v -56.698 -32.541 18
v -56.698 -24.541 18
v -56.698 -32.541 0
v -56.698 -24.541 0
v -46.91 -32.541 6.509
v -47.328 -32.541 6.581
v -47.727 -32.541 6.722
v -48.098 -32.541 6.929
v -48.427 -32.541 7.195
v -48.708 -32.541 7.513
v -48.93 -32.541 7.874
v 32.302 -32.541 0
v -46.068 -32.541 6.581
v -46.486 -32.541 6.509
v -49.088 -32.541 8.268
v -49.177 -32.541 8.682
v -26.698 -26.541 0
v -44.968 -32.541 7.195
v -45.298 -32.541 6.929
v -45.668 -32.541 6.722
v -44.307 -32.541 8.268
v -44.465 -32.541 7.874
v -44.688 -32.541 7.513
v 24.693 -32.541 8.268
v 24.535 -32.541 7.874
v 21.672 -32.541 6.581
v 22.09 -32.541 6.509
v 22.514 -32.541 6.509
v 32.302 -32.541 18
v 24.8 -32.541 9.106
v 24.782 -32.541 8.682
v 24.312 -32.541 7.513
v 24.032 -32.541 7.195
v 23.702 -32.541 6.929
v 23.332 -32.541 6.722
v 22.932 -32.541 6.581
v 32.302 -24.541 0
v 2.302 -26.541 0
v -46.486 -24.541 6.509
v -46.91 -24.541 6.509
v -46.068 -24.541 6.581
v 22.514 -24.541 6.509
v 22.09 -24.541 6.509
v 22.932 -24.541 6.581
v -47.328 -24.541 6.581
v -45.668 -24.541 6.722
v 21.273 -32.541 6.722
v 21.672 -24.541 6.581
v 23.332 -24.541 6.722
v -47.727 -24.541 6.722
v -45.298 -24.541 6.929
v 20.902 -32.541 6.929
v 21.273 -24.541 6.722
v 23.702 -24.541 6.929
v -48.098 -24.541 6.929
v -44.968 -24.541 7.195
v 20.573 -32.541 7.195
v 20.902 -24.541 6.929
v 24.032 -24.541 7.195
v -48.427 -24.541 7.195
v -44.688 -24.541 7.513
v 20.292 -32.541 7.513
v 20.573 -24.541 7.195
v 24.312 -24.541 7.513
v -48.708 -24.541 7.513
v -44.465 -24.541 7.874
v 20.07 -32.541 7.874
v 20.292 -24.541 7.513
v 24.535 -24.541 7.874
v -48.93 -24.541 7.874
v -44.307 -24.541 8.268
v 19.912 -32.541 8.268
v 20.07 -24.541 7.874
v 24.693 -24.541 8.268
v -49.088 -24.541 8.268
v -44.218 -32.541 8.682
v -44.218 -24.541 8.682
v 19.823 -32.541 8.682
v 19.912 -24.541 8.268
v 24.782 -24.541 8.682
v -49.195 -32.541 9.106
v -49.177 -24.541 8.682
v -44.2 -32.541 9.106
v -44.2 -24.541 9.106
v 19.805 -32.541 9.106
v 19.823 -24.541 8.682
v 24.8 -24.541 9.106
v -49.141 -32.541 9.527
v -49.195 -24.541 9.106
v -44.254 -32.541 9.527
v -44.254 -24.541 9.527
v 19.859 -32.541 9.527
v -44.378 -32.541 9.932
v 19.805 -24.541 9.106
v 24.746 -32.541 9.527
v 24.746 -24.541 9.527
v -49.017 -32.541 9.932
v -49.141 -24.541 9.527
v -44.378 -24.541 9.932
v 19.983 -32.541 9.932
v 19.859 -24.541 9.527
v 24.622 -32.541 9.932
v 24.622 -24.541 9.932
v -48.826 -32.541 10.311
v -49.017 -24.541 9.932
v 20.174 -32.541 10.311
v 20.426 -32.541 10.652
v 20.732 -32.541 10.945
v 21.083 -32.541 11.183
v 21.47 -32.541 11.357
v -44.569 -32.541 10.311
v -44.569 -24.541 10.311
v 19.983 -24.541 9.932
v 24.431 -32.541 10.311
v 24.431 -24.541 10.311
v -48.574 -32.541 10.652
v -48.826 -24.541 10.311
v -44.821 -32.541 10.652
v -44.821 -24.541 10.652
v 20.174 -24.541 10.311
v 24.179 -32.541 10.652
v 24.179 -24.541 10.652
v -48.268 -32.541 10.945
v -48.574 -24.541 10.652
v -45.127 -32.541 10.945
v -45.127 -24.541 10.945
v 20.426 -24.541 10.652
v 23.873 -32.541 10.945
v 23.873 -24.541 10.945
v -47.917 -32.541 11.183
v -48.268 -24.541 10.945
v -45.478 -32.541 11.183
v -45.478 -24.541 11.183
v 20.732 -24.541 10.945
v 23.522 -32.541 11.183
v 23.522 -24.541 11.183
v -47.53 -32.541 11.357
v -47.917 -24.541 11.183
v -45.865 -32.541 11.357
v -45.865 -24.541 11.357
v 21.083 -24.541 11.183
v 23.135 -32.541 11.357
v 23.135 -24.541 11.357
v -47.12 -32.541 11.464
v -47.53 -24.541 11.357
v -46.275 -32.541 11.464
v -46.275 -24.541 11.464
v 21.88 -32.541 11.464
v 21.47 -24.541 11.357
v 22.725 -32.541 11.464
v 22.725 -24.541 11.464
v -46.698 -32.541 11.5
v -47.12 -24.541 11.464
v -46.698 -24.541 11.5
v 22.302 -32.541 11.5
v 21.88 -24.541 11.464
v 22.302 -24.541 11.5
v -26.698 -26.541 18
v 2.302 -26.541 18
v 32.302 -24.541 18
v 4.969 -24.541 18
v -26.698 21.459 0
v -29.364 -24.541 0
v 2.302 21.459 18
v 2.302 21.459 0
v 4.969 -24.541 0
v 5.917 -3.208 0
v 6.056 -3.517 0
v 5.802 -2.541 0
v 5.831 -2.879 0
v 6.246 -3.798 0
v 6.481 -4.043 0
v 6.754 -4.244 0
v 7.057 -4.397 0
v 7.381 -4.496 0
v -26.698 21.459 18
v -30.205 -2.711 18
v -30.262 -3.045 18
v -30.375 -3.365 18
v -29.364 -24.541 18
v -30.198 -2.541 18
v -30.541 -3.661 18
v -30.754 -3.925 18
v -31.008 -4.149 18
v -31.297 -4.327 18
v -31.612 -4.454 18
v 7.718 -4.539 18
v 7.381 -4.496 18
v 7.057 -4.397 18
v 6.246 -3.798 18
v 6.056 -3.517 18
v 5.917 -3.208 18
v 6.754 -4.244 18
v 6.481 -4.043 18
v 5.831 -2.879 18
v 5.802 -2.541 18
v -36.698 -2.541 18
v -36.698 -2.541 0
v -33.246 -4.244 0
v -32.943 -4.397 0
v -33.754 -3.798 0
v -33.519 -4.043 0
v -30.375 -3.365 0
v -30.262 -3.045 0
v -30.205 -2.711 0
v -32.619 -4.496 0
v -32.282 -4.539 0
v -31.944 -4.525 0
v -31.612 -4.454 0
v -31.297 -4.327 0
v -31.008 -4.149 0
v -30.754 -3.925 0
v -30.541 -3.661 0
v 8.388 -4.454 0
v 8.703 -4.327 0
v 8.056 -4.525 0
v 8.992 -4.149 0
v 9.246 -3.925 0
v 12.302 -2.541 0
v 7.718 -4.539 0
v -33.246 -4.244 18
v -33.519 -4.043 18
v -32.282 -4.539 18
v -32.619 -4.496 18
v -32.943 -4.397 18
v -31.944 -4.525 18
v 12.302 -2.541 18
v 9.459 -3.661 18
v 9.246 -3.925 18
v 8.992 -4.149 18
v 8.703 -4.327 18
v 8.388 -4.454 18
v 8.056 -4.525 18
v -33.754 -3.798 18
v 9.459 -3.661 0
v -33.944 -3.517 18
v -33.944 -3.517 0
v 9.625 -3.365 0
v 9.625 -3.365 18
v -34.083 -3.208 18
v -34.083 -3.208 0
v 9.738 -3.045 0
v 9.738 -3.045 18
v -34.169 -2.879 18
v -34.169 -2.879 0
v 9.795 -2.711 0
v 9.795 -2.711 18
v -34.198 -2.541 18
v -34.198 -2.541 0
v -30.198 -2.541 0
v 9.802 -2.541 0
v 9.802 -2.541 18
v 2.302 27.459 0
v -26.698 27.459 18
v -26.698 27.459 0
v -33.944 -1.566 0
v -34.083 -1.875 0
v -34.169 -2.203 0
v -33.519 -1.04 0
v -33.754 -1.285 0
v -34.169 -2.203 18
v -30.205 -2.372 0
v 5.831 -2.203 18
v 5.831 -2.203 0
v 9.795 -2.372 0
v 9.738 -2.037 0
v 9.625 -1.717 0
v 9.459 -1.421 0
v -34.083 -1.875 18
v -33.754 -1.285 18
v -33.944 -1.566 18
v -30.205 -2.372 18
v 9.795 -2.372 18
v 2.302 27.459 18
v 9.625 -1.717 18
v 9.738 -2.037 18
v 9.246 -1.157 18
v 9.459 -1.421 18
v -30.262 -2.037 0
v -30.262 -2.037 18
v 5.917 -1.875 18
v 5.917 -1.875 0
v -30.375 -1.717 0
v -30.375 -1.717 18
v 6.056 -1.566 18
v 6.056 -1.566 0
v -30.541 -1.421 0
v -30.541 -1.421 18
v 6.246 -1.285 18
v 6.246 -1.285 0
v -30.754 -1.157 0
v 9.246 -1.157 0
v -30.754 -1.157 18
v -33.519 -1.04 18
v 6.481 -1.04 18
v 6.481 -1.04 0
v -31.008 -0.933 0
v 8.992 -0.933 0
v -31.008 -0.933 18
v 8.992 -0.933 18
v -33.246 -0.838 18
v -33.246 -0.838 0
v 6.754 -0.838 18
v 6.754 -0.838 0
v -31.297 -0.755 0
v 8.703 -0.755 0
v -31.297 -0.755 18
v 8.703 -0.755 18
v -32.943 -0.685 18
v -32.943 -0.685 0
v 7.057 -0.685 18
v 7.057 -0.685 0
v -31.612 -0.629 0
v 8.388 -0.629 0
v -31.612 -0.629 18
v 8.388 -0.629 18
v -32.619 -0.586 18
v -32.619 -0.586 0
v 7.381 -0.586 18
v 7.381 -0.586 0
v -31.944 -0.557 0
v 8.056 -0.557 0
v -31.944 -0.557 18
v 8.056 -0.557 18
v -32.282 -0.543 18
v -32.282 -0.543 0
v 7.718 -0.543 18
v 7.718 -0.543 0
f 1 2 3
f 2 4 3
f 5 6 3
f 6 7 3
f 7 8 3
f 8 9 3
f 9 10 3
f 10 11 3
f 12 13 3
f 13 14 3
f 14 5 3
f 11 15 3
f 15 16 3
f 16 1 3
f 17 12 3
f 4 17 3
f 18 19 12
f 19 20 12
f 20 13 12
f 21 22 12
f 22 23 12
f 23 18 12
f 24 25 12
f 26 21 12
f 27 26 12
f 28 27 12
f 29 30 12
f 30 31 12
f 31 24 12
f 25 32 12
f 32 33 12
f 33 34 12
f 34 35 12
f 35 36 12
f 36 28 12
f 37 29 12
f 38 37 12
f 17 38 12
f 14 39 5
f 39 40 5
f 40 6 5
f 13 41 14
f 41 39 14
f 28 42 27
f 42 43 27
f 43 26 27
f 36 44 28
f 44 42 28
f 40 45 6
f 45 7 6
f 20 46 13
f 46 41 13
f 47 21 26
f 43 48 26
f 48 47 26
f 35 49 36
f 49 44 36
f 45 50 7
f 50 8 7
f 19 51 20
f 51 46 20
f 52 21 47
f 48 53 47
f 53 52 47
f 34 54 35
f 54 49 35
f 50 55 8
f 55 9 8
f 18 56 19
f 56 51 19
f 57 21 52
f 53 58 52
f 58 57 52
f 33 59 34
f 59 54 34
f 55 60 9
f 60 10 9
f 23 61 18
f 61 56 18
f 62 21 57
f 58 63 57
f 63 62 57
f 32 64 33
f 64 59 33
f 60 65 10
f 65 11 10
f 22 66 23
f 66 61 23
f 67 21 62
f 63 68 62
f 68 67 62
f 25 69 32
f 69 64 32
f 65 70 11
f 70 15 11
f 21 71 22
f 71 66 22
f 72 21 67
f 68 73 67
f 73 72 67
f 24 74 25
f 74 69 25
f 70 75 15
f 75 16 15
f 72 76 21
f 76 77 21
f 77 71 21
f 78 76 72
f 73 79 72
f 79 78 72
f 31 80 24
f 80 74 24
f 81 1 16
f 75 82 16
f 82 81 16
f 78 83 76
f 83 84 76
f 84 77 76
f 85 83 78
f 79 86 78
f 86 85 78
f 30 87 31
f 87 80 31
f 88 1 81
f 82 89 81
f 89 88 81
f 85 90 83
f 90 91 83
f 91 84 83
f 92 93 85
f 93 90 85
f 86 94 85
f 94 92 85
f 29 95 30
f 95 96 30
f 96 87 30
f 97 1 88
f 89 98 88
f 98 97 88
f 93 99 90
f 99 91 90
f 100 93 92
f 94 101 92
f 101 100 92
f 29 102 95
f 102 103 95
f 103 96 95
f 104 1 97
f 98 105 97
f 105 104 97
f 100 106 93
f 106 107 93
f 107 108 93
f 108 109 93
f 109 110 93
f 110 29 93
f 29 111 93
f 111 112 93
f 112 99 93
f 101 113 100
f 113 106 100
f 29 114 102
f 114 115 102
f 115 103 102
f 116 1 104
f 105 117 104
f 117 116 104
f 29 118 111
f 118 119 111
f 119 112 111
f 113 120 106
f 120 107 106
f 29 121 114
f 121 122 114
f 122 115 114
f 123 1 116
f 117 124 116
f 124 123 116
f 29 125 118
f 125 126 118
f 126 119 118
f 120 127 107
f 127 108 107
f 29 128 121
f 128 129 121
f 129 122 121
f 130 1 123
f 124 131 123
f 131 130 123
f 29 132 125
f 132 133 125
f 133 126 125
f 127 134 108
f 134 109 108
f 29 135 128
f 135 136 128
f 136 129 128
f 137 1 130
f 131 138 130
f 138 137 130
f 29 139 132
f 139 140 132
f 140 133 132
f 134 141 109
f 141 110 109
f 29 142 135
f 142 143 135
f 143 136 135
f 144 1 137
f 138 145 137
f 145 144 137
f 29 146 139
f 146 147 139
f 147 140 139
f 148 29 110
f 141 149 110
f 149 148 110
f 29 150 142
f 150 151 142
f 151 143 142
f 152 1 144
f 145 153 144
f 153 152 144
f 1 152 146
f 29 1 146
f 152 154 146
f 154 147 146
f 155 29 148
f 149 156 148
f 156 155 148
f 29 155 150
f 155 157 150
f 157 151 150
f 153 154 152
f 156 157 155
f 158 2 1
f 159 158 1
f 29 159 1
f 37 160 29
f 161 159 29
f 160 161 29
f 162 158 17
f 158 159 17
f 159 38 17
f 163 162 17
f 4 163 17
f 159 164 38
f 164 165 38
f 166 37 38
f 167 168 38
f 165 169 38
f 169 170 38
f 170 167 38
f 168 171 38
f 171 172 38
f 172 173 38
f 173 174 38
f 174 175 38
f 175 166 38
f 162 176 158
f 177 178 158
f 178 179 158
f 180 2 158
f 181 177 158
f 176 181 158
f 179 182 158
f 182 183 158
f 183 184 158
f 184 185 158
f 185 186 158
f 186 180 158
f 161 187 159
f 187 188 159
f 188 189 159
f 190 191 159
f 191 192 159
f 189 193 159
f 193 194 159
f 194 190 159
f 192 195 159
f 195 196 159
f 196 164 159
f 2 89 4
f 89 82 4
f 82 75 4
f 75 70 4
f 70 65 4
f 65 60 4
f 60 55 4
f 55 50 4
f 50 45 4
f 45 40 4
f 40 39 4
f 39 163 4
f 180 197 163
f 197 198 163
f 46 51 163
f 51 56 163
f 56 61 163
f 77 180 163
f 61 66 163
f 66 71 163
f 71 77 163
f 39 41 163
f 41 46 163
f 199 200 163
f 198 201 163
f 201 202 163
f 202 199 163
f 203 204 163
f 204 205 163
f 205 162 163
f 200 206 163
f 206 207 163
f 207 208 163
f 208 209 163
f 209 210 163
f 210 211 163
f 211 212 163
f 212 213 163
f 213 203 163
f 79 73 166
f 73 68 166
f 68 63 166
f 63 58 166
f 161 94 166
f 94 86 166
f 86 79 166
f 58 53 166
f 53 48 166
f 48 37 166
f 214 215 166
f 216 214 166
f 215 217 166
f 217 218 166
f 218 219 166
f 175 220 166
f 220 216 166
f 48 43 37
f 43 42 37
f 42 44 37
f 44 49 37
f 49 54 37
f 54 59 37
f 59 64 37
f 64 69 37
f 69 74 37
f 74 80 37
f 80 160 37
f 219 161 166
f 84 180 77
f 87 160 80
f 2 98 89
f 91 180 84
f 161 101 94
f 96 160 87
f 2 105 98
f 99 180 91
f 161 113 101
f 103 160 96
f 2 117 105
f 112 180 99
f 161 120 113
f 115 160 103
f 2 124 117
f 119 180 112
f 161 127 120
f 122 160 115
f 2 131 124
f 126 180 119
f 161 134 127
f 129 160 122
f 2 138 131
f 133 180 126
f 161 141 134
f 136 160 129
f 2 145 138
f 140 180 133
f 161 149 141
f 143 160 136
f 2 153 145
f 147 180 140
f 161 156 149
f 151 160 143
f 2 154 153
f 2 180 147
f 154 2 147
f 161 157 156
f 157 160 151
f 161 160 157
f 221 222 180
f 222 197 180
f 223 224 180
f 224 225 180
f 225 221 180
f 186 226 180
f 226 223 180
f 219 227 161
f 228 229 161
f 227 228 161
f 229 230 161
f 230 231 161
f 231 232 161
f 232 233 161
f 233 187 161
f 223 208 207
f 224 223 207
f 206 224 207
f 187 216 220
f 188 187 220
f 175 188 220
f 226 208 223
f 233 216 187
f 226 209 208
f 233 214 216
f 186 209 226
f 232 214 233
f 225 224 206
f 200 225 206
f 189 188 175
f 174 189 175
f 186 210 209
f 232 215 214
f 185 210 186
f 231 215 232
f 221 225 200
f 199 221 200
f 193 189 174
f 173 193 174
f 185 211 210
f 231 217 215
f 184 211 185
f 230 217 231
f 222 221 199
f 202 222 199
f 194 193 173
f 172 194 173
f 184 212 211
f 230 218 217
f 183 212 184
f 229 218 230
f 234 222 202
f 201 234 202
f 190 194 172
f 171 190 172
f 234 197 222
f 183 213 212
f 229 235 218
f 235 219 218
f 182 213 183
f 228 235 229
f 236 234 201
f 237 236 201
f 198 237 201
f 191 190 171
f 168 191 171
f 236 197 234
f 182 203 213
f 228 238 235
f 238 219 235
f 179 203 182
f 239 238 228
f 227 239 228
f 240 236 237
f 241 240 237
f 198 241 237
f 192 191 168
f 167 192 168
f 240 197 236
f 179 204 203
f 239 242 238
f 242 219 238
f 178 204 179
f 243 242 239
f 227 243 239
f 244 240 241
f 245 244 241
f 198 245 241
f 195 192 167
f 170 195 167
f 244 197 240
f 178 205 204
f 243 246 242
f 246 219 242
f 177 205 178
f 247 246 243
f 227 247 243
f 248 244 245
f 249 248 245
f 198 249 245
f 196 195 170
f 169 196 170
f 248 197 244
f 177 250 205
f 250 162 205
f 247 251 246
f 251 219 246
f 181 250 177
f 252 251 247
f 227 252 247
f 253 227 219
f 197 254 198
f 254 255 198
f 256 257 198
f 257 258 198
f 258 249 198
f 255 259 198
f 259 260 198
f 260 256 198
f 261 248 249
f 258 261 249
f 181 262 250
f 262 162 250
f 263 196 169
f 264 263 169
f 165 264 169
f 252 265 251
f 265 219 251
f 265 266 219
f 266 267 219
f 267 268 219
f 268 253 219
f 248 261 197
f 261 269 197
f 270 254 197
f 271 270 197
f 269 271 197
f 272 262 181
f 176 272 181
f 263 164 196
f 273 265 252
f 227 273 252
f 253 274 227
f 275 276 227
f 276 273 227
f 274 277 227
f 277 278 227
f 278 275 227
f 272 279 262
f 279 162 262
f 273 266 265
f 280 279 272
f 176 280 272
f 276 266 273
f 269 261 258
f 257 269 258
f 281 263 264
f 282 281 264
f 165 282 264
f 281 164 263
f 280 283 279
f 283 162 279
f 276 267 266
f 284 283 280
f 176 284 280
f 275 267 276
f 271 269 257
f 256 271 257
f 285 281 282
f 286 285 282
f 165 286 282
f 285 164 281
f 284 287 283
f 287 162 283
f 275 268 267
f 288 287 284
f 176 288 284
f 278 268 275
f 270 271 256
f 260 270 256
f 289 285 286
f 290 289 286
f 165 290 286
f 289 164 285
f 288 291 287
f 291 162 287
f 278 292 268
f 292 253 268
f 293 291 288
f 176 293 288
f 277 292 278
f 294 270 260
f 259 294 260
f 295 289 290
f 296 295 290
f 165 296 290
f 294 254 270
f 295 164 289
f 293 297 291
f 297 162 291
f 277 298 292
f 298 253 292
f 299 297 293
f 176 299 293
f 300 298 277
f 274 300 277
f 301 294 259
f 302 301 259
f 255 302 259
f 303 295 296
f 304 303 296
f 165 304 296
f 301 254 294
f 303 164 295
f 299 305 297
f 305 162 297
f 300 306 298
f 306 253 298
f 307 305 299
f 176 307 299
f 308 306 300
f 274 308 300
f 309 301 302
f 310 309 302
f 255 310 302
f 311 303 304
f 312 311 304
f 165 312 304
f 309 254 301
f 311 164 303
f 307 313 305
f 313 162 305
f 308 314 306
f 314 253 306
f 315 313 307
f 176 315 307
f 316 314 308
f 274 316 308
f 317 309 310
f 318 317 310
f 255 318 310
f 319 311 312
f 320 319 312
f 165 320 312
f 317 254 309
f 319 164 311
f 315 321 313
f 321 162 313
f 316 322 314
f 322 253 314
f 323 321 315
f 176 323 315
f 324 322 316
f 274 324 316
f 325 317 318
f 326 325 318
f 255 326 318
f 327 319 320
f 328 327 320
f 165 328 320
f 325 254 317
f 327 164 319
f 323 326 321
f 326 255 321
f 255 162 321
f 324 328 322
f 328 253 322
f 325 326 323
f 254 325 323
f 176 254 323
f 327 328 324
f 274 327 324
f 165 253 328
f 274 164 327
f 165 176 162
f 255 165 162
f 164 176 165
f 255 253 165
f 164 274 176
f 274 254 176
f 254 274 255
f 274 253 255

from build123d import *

# Parameters (mm, degrees)
SKETCH_1_R          = 2
EXTRUDE_2_DEPTH     = 18
SKETCH_2_R          = 2.5
CUT_EXTRUDE_1_DEPTH = 18


with BuildPart() as part:
    # 草图1 → 凸台-拉伸2 (new body)
    with BuildSketch(Plane.XY):
        Polygon((2.302405498, 27.458762887), (-26.697594502, 27.458762887), (-36.697594502, -2.541237113), (-29.364261168, -24.541237113), (-56.697594502, -24.541237113), (-56.697594502, -32.541237113), (32.302405498, -32.541237113), (32.302405498, -24.541237113), (4.969072165, -24.541237113), (12.302405498, -2.541237113), align=None)
        with Locations((-32.197594502, -2.541237113)):
            Circle(SKETCH_1_R, mode=Mode.SUBTRACT)
        Polygon((-26.697594502, -26.541237113), (-26.697594502, -2.541237113), (-26.697594502, 21.458762887), (2.302405498, 21.458762887), (2.302405498, -2.541237113), (2.302405498, -26.541237113), align=None, mode=Mode.SUBTRACT)
        with Locations((7.802405498, -2.541237113)):
            Circle(SKETCH_1_R, mode=Mode.SUBTRACT)
    extrude(amount=EXTRUDE_2_DEPTH)

    # 草图2 → 切除-拉伸1 (cut)
    with BuildSketch(Plane(origin=(0, -24.541237113, 0), x_dir=(1, 0, 0), z_dir=(0, 1, 0))):
        with Locations(Location((-46.697594502, -9, 0), (0, 0, 270))):
            Circle(SKETCH_2_R)
        with Locations(Location((22.302405498, -9, 0), (0, 0, 270))):
            Circle(SKETCH_2_R)
    extrude(amount=-CUT_EXTRUDE_1_DEPTH, mode=Mode.SUBTRACT)


solid = part.part
